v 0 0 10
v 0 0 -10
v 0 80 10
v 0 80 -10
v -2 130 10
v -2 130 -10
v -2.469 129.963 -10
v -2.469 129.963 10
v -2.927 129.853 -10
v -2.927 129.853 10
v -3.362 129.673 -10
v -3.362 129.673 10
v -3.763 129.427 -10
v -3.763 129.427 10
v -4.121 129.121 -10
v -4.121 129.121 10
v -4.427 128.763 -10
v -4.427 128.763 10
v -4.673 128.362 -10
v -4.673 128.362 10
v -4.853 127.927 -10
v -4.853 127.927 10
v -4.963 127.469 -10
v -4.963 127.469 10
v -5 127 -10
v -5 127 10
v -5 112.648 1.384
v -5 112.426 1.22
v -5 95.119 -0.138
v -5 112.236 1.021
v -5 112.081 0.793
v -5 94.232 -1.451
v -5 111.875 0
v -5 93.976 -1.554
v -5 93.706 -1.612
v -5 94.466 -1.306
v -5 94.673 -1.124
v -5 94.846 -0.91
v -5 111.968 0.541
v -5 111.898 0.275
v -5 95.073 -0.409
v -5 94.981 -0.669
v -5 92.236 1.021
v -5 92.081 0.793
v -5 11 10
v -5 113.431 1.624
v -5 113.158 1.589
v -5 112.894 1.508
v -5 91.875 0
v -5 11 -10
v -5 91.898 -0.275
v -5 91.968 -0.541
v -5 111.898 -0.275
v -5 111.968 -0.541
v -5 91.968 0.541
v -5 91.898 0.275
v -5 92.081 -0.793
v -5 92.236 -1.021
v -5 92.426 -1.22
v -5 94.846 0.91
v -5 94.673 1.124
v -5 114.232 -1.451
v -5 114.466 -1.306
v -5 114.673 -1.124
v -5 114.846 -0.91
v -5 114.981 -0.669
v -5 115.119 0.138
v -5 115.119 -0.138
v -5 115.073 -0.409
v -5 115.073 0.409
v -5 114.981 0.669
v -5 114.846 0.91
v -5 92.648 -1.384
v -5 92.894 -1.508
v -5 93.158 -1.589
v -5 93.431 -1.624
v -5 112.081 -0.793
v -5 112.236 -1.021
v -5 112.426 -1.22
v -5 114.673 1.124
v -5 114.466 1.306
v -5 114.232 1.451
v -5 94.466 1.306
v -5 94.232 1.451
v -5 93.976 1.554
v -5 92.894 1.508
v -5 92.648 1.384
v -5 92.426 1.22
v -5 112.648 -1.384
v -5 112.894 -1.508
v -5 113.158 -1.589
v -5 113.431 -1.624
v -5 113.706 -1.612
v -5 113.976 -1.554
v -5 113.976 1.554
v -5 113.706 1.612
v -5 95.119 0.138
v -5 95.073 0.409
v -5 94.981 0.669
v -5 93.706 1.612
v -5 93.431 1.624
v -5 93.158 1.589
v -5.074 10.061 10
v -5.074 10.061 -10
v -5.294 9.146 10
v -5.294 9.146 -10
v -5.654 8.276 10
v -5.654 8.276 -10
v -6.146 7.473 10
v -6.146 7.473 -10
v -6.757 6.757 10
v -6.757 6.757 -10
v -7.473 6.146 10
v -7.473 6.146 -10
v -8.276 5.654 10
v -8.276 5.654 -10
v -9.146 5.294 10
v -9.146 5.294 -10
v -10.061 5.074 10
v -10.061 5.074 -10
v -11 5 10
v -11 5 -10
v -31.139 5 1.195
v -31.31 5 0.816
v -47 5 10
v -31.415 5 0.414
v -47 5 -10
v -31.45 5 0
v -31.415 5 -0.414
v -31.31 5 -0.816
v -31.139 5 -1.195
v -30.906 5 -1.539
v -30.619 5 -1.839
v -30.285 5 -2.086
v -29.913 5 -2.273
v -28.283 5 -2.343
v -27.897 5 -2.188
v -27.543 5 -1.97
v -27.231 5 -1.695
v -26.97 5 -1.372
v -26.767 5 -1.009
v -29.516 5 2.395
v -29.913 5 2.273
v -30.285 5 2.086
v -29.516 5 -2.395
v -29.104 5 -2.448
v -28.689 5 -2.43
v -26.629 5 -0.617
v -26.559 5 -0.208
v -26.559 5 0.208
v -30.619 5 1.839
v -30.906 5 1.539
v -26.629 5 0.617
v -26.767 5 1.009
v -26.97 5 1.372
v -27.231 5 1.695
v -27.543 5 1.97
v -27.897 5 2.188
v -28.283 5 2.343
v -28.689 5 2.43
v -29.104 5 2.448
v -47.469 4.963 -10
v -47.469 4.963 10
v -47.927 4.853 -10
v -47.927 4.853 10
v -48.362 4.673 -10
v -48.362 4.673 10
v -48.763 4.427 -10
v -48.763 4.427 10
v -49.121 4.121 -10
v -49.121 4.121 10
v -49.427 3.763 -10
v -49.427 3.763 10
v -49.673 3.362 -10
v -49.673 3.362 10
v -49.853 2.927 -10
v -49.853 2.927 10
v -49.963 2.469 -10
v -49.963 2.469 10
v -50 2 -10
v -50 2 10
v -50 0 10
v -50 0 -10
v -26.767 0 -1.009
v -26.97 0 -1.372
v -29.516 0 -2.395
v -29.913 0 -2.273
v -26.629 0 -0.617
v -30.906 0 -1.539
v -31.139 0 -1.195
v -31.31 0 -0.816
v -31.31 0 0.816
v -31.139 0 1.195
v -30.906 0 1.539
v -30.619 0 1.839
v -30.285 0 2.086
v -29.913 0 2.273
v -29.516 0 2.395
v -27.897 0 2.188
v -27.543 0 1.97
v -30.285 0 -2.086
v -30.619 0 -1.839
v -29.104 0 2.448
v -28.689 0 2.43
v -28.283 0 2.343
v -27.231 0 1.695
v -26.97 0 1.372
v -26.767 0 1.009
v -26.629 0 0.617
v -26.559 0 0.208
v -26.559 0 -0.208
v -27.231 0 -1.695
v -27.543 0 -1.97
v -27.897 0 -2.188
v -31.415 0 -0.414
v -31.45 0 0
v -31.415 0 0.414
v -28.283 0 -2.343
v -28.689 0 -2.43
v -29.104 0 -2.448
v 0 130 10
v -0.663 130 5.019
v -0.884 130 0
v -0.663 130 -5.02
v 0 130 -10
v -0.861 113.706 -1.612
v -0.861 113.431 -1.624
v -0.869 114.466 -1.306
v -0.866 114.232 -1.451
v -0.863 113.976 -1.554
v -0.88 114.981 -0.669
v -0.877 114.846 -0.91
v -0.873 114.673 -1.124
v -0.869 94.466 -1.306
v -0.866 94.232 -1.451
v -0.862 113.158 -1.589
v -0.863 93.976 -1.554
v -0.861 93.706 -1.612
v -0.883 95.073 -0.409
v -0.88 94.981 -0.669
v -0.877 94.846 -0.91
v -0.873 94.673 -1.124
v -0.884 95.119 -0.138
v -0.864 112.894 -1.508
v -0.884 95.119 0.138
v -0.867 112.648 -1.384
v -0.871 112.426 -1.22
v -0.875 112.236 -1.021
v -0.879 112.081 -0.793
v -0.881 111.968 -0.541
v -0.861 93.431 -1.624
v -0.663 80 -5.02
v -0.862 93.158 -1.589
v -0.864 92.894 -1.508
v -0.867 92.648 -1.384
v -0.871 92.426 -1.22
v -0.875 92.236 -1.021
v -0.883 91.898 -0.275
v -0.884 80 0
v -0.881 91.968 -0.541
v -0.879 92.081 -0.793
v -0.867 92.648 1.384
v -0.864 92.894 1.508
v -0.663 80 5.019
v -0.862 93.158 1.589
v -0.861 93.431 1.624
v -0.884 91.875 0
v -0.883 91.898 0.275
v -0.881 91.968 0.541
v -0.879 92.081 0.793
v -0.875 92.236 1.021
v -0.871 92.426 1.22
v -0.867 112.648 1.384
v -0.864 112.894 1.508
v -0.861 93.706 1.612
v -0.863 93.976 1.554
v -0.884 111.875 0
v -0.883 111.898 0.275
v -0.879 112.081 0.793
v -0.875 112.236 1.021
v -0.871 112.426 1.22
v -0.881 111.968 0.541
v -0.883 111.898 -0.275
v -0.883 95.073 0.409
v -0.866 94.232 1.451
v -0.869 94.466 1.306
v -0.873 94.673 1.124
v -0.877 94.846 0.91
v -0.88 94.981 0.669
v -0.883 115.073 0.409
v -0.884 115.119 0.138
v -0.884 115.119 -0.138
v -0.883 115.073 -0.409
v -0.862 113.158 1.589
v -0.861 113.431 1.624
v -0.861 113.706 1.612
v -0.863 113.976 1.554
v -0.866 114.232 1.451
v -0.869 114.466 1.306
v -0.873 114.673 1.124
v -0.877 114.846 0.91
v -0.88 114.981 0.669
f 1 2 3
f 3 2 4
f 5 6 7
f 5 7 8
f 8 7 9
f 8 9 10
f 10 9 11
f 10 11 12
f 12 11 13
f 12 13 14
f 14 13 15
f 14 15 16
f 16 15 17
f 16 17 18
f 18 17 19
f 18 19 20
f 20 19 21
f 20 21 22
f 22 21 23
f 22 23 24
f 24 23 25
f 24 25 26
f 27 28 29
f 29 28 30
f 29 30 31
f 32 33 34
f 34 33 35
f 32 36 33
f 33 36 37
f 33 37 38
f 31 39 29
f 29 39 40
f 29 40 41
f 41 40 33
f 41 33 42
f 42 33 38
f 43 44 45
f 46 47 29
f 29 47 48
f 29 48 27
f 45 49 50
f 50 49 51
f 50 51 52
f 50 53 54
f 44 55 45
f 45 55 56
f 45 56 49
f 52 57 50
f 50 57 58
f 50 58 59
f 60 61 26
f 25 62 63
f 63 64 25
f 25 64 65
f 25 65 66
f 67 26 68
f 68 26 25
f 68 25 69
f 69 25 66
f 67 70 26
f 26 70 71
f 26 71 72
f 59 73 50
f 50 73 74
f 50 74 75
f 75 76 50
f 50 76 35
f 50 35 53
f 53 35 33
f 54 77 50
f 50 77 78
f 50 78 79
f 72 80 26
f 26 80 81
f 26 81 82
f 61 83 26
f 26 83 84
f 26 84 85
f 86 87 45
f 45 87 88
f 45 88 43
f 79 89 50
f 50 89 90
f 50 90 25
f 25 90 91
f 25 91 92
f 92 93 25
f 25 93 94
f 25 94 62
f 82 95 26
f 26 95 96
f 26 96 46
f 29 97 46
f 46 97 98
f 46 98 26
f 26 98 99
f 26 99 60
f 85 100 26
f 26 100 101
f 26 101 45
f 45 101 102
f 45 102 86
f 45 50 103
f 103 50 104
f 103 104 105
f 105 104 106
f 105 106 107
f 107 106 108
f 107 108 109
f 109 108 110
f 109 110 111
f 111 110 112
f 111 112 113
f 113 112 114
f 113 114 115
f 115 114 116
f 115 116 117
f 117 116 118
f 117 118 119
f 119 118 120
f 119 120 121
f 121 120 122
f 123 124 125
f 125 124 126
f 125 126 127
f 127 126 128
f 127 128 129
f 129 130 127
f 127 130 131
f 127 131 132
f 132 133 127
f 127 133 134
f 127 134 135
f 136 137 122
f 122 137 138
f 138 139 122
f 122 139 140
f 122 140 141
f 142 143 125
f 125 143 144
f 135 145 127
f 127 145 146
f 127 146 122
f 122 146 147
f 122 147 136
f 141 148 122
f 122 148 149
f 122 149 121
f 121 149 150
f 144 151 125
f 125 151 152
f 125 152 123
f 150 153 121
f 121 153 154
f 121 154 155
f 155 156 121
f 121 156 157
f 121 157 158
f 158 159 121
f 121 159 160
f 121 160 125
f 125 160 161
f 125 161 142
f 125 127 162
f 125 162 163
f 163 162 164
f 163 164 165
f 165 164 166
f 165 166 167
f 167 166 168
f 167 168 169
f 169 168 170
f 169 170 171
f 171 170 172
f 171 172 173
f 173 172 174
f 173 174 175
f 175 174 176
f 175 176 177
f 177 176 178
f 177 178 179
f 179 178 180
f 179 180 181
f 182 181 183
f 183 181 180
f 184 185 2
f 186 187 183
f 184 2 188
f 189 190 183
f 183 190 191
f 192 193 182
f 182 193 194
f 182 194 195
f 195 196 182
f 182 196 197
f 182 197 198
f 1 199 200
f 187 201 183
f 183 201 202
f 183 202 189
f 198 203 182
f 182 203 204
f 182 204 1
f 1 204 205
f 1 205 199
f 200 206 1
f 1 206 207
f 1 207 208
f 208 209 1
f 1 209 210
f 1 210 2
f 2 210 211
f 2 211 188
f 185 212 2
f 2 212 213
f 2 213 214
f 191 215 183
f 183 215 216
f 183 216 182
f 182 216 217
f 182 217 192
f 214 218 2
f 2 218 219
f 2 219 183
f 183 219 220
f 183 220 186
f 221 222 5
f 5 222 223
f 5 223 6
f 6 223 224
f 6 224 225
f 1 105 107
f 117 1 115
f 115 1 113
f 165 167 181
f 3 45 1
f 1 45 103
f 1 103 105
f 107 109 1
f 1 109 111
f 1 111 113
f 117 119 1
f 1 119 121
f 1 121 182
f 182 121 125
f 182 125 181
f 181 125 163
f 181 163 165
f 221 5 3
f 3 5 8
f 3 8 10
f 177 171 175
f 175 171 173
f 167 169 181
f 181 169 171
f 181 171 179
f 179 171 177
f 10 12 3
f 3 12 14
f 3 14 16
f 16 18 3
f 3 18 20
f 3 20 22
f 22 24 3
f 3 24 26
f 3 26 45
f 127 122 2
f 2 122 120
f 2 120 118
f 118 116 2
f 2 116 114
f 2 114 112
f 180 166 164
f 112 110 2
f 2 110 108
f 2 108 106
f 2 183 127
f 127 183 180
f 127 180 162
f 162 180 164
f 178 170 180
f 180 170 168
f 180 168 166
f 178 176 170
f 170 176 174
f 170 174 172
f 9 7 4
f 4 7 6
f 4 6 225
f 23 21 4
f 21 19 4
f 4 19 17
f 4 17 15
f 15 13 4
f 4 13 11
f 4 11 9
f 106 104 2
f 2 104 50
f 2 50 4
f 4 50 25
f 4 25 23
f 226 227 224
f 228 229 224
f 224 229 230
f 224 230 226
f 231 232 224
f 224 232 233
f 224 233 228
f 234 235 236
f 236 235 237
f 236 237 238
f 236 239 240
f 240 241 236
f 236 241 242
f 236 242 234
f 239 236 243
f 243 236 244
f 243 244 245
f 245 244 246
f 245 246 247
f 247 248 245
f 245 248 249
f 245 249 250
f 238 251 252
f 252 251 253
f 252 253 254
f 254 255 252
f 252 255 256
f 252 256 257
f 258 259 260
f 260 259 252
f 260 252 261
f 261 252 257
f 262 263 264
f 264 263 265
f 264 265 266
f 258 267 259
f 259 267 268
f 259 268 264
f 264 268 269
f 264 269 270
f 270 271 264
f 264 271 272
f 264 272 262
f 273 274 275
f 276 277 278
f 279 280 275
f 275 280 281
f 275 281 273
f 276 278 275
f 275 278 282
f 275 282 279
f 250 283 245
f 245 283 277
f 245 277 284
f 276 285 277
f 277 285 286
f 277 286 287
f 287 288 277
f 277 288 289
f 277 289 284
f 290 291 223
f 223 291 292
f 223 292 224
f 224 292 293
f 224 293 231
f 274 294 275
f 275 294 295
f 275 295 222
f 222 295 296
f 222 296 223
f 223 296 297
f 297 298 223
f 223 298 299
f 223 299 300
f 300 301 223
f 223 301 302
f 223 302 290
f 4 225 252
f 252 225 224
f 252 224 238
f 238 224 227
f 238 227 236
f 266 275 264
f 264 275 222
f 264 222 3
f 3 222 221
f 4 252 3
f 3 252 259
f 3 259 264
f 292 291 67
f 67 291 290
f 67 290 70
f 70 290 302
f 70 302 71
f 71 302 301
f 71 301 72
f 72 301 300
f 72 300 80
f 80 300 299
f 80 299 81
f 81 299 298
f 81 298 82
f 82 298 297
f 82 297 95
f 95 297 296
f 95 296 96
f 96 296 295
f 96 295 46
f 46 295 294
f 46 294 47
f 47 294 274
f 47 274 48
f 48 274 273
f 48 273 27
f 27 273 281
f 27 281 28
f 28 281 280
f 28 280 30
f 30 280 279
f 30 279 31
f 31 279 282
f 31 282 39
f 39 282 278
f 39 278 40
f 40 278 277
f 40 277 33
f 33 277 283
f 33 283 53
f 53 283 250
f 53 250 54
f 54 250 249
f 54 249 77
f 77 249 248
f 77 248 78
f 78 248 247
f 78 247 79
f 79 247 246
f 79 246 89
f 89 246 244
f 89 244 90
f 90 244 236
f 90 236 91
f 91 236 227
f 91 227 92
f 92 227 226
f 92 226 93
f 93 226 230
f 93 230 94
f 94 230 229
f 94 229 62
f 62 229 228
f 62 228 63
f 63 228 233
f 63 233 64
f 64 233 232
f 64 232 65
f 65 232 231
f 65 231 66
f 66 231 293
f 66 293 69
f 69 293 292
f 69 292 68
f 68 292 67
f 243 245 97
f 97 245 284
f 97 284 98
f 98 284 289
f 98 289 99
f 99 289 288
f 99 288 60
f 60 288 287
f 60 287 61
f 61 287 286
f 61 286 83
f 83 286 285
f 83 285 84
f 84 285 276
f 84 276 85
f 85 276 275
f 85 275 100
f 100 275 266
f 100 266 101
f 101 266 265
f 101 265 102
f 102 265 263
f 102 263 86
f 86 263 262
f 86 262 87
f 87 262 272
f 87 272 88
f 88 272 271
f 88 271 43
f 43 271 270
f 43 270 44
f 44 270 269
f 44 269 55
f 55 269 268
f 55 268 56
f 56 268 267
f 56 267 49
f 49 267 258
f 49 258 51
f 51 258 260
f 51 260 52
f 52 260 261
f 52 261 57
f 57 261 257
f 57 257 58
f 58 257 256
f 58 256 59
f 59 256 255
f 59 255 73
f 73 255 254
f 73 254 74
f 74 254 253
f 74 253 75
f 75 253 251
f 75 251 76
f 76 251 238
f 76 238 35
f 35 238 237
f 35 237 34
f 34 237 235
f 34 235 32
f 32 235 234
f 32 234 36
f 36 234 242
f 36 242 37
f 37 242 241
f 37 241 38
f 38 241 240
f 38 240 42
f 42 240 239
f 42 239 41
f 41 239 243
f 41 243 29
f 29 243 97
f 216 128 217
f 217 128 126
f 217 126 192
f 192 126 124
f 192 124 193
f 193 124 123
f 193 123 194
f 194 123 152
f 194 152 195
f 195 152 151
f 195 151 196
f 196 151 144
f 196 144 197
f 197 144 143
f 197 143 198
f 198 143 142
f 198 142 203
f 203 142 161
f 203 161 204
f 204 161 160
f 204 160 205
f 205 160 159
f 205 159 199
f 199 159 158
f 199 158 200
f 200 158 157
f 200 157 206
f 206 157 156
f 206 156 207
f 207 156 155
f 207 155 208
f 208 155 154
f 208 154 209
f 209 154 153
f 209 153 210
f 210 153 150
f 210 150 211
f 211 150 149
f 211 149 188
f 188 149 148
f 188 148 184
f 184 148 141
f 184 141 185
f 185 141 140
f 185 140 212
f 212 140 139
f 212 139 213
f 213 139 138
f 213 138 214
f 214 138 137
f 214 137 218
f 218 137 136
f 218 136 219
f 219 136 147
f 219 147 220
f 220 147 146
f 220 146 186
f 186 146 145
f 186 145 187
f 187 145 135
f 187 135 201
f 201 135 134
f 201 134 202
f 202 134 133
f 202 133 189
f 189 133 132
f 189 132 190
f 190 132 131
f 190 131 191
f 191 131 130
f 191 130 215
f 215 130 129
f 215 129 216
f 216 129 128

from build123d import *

# Parameters (mm, degrees)
BOSS_EXTRUDE1_DEPTH = 10
CUT_EXTRUDE1_DEPTH  = 50
SKETCH3_R           = 1.625
CUT_EXTRUDE2_DEPTH  = 6
SKETCH8_R           = 2.45
CUT_EXTRUDE3_DEPTH  = 6


with BuildPart() as part:
    # Sketch1 → Boss-Extrude1 (new body, symmetric)
    with BuildSketch(Plane.XY):
        with BuildLine():
            Line((0, 0), (0, 130))
            Line((0, 130), (-2, 130))
            ThreePointArc((-2, 130), (-4.121320344, 129.121320344), (-5, 127))
            Line((-5, 127), (-5, 11))
            ThreePointArc((-5, 11), (-6.757359313, 6.757359313), (-11, 5))
            Line((-11, 5), (-47, 5))
            ThreePointArc((-47, 5), (-49.121320344, 4.121320344), (-50, 2))
            Line((-50, 2), (-50, 0))
            Line((-50, 0), (0, 0))
        make_face()
    extrude(amount=BOSS_EXTRUDE1_DEPTH, both=True)

    # Sketch2 → Cut-Extrude1 (cut)
    with BuildSketch(Plane(origin=(0, 130, 0), x_dir=(1, 0, 0), z_dir=(0, 1, 0))):
        with BuildLine():
            ThreePointArc((0, 10), (-0.884048614, 0), (0, -10))
            Line((0, -10), (0, 10))
        make_face()
        with BuildLine():
            Line((0, 10), (0, -10))
            ThreePointArc((0, -10), (61.135451908, -56.7785577), (113.115951386, 0))
            ThreePointArc((113.115951386, 0), (61.135451908, 56.7785577), (0, 10))
        make_face()
    extrude(amount=-CUT_EXTRUDE1_DEPTH, mode=Mode.SUBTRACT)

    # Sketch3 → Cut-Extrude2 (cut, through all)
    with BuildSketch(Plane.ZY.offset(5)):
        with Locations((0, 93.5)):
            Circle(SKETCH3_R)
        with Locations((0, 113.5)):
            Circle(SKETCH3_R)
    extrude(amount=-CUT_EXTRUDE2_DEPTH, mode=Mode.SUBTRACT)

    # Sketch8 → Cut-Extrude3 (cut, through all)
    with BuildSketch(Plane(origin=(0, 5, 0), x_dir=(1, 0, 0), z_dir=(0, 1, 0))):
        with Locations((-29, 0)):
            Circle(SKETCH8_R)
    extrude(amount=-CUT_EXTRUDE3_DEPTH, mode=Mode.SUBTRACT)


solid = part.part
